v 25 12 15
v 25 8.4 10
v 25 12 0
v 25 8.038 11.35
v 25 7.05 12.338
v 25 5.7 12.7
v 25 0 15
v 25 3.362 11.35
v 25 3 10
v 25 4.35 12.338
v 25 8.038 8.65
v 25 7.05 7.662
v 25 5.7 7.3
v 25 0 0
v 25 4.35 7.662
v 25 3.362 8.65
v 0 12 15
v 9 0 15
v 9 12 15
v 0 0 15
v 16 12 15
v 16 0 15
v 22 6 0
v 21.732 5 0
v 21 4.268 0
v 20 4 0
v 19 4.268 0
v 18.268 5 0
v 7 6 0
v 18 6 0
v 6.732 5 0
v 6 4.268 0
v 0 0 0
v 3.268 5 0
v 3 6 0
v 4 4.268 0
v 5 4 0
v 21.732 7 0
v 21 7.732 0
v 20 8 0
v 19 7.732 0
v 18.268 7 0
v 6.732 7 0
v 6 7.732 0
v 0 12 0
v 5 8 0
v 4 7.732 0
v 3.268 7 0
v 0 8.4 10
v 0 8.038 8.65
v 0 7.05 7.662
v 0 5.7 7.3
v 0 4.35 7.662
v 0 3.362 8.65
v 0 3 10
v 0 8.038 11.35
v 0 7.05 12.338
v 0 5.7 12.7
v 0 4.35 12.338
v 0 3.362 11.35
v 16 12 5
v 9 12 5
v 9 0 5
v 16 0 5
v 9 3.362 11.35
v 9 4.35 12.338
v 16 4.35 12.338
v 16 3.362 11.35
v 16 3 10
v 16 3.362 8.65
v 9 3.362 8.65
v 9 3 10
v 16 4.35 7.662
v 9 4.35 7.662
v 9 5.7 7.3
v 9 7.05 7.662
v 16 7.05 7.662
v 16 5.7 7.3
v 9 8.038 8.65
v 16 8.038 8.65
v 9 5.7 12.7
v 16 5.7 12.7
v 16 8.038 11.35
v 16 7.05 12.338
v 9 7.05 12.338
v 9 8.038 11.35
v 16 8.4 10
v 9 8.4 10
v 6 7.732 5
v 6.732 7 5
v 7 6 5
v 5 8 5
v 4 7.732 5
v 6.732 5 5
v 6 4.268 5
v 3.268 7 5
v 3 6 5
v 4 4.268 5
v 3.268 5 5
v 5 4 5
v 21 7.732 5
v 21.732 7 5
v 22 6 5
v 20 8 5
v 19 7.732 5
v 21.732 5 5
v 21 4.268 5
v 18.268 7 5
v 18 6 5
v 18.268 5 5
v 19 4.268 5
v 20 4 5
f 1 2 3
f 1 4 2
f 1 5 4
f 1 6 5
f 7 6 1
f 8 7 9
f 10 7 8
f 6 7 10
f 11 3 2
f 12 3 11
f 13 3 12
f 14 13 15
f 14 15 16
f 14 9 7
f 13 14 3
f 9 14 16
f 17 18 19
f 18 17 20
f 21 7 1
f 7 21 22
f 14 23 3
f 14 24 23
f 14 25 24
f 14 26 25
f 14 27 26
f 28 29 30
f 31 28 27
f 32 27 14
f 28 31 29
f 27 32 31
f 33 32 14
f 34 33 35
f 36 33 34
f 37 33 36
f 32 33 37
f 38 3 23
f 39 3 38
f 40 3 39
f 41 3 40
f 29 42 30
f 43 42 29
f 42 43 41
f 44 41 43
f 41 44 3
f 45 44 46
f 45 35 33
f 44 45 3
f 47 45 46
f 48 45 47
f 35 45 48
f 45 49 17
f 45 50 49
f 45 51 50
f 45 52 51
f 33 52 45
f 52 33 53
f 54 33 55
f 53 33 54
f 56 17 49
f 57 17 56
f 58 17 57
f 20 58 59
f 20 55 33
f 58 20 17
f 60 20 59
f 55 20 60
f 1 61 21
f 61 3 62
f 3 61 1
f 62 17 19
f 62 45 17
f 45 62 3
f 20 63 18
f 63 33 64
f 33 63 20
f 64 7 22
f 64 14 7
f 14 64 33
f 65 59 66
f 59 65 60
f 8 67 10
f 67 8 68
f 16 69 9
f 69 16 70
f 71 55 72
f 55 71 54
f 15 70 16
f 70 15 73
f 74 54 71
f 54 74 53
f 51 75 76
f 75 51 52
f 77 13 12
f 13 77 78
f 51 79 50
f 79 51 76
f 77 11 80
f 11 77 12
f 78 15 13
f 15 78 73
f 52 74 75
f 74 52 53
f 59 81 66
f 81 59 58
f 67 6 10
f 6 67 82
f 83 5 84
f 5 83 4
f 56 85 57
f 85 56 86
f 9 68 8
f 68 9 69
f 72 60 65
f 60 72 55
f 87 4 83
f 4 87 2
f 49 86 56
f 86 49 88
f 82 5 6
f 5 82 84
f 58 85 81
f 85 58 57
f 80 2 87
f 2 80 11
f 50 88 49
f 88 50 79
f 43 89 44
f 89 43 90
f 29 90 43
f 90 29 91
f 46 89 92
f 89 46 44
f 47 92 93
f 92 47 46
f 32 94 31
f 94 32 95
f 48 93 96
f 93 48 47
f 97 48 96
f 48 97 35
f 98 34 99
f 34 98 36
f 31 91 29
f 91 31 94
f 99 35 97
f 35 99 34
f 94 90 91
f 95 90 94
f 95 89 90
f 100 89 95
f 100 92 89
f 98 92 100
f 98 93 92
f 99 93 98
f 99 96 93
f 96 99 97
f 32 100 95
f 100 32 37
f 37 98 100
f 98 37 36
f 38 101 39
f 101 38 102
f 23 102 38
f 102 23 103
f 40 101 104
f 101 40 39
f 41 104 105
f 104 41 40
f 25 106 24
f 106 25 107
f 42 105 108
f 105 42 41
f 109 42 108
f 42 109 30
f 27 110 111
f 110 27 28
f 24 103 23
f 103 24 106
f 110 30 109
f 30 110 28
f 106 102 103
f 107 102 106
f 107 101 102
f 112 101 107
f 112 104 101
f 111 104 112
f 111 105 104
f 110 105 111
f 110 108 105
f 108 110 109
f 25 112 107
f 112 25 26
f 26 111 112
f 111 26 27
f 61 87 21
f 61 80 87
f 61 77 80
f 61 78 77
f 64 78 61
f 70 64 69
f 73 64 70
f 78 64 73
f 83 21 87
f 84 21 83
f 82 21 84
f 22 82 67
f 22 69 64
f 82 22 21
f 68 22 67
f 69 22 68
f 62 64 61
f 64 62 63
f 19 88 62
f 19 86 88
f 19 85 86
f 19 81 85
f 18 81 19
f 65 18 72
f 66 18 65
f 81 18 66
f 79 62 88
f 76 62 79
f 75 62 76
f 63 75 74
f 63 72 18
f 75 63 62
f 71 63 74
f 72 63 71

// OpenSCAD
difference() {
    cube([25,12,15]);
    // handle holder
    translate([0,5.7,10]) {
        rotate(90,[0,1,0]) {
            cylinder(d=5.4,h=25, $fn=12);
        }
    };
    // bottom connections
    translate([5,6,0]) {
        cylinder(d=4, h=5, $fn=12);
    };
    translate([20,6,0]) {
        cylinder(d=4, h=5, $fn=12);
    };
    // cut outs
    translate([9,0,5]) {
        cube([7,12,12]);
    };
}
